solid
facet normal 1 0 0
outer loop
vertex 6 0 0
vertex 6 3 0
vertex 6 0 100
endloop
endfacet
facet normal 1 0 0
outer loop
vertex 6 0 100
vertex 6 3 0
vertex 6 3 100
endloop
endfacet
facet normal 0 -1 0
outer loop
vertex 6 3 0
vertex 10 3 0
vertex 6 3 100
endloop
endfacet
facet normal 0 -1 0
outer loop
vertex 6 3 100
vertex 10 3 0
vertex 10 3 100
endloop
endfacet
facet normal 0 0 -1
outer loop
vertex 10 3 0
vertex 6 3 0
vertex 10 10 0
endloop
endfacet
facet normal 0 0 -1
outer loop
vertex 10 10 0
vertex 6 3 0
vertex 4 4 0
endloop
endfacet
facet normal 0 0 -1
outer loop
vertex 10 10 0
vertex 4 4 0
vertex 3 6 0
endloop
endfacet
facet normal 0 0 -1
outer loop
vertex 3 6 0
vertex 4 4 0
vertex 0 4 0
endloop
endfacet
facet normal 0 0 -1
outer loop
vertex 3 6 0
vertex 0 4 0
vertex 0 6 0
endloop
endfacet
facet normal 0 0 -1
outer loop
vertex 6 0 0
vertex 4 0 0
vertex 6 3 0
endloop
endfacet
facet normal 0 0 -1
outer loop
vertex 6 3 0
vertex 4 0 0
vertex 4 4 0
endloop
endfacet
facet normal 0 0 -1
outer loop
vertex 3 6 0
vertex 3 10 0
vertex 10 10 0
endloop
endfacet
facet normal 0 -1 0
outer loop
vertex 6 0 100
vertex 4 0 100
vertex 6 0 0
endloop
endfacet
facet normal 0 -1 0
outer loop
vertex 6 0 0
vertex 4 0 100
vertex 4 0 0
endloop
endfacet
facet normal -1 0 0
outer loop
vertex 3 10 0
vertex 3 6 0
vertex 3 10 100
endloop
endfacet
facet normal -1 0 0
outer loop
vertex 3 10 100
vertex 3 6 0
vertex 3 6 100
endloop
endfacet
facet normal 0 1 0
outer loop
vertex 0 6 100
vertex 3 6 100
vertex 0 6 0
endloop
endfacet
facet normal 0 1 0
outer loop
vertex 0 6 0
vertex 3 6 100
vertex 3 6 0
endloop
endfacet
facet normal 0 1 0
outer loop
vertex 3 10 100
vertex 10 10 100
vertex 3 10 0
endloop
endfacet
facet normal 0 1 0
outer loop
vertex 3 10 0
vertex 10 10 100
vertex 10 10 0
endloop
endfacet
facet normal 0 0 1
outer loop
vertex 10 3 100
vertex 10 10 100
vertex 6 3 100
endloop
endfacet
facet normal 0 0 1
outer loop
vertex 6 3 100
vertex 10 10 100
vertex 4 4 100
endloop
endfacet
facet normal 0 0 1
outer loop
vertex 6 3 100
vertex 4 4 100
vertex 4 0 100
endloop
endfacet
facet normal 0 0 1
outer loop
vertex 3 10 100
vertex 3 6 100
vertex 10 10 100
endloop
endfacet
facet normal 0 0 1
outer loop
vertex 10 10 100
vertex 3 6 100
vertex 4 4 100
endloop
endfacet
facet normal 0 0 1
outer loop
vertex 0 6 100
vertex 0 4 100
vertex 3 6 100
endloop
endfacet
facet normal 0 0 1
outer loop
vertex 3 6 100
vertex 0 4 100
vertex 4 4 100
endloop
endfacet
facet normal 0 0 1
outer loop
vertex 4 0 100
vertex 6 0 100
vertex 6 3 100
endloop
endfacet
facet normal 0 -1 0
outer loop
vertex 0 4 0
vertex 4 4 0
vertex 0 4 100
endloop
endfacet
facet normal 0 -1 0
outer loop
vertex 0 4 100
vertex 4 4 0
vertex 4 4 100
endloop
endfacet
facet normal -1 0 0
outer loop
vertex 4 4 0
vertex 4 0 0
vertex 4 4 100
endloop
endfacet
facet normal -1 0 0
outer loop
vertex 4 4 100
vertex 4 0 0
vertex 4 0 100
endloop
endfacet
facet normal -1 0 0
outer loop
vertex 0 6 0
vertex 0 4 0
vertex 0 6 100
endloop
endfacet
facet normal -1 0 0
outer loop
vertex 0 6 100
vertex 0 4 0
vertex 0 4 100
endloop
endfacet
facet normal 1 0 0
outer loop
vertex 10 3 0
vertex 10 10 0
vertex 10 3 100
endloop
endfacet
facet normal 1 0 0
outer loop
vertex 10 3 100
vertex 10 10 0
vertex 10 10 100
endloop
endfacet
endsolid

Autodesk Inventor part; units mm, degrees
ref_plane "YZ Plane" through (0, 0, 0) normal (1, 0, 0) x (0, 1, 0)
ref_plane "XZ Plane" through (0, 0, 0) normal (0, 1, 0) x (-1, 0, 0)
sketch "Skizze1" plane through (0, 0, 0) normal (0, 0, 1) x (1, 0, 0)
  line L0 (0, 0) -> (10, 0)
  line L1 (10, 0) -> (10, 10)
  line L2 (10, 10) -> (0, 10)
  line L3 (0, 10) -> (0, 0)
extrude "Extrusion1" add sketch "Skizze1" along normal blind 100
sketch "Skizze2" plane through (0, 0, 0) normal (0, 0, 1) x (1, 0, 0)
  line L0 (0, 0) -> (4, 0)
  line L1 (4, 0) -> (4, 4)
  line L2 (4, 4) -> (0, 4)
  line L3 (0, 4) -> (0, 0)
extrude "Extrusion2" cut sketch "Skizze2" along normal blind 100
sketch "Skizze3" plane through (0, 0, 0) normal (0, 0, 1) x (1, 0, 0)
  line L0 (-3, 6) -> (3, 6)
  line L1 (3, 6) -> (3, 10)
  line L2 (3, 10) -> (-3, 10)
  line L3 (-3, 10) -> (-3, 6)
extrude "Extrusion3" cut sketch "Skizze3" along normal blind 100
sketch "Skizze4" plane through (0, 0, 0) normal (0, 0, 1) x (1, 0, 0)
  line L0 (-3, -10) -> (3, -10)
  line L1 (3, -10) -> (3, -6)
  line L2 (3, -6) -> (-3, -6)
  line L3 (-3, -6) -> (-3, -10)
extrude "Extrusion4" cut sketch "Skizze4" along normal blind 100
sketch "Skizze5" plane through (0, 0, 0) normal (0, 0, 1) x (1, 0, 0)
  line L0 (-10, -3) -> (-6, -3)
  line L1 (-6, -3) -> (-6, 3)
  line L2 (-6, 3) -> (-10, 3)
  line L3 (-10, 3) -> (-10, -3)
extrude "Extrusion5" cut sketch "Skizze5" along normal blind 100
sketch "Skizze6" plane through (0, 0, 0) normal (0, 0, 1) x (1, 0, 0)
  line L0 (6, -3) -> (10, -3)
  line L1 (10, -3) -> (10, 3)
  line L2 (10, 3) -> (6, 3)
  line L3 (6, 3) -> (6, -3)
extrude "Extrusion6" cut sketch "Skizze6" along normal blind 100
ref_plane "Arbeitsebene1" through (0, 0, 100) normal (0, 0, 1) x (1, 0, 0)
sketch "Skizze7" plane through (0, 0, 0) normal (0, 0, 1) x (1, 0, 0)
  circle A0 centre (0, 0) radius 2.5
extrude "Extrusion7" cut sketch "Skizze7" along normal blind 10
sketch "Skizze8" plane through (0, 0, 100) normal (0, 0, 1) x (1, 0, 0)
  circle A0 centre (0, 0) radius 2.5
extrude "Extrusion8" cut sketch "Skizze8" along normal blind 10
properties part number "Aluprofil_20x20_H100"
